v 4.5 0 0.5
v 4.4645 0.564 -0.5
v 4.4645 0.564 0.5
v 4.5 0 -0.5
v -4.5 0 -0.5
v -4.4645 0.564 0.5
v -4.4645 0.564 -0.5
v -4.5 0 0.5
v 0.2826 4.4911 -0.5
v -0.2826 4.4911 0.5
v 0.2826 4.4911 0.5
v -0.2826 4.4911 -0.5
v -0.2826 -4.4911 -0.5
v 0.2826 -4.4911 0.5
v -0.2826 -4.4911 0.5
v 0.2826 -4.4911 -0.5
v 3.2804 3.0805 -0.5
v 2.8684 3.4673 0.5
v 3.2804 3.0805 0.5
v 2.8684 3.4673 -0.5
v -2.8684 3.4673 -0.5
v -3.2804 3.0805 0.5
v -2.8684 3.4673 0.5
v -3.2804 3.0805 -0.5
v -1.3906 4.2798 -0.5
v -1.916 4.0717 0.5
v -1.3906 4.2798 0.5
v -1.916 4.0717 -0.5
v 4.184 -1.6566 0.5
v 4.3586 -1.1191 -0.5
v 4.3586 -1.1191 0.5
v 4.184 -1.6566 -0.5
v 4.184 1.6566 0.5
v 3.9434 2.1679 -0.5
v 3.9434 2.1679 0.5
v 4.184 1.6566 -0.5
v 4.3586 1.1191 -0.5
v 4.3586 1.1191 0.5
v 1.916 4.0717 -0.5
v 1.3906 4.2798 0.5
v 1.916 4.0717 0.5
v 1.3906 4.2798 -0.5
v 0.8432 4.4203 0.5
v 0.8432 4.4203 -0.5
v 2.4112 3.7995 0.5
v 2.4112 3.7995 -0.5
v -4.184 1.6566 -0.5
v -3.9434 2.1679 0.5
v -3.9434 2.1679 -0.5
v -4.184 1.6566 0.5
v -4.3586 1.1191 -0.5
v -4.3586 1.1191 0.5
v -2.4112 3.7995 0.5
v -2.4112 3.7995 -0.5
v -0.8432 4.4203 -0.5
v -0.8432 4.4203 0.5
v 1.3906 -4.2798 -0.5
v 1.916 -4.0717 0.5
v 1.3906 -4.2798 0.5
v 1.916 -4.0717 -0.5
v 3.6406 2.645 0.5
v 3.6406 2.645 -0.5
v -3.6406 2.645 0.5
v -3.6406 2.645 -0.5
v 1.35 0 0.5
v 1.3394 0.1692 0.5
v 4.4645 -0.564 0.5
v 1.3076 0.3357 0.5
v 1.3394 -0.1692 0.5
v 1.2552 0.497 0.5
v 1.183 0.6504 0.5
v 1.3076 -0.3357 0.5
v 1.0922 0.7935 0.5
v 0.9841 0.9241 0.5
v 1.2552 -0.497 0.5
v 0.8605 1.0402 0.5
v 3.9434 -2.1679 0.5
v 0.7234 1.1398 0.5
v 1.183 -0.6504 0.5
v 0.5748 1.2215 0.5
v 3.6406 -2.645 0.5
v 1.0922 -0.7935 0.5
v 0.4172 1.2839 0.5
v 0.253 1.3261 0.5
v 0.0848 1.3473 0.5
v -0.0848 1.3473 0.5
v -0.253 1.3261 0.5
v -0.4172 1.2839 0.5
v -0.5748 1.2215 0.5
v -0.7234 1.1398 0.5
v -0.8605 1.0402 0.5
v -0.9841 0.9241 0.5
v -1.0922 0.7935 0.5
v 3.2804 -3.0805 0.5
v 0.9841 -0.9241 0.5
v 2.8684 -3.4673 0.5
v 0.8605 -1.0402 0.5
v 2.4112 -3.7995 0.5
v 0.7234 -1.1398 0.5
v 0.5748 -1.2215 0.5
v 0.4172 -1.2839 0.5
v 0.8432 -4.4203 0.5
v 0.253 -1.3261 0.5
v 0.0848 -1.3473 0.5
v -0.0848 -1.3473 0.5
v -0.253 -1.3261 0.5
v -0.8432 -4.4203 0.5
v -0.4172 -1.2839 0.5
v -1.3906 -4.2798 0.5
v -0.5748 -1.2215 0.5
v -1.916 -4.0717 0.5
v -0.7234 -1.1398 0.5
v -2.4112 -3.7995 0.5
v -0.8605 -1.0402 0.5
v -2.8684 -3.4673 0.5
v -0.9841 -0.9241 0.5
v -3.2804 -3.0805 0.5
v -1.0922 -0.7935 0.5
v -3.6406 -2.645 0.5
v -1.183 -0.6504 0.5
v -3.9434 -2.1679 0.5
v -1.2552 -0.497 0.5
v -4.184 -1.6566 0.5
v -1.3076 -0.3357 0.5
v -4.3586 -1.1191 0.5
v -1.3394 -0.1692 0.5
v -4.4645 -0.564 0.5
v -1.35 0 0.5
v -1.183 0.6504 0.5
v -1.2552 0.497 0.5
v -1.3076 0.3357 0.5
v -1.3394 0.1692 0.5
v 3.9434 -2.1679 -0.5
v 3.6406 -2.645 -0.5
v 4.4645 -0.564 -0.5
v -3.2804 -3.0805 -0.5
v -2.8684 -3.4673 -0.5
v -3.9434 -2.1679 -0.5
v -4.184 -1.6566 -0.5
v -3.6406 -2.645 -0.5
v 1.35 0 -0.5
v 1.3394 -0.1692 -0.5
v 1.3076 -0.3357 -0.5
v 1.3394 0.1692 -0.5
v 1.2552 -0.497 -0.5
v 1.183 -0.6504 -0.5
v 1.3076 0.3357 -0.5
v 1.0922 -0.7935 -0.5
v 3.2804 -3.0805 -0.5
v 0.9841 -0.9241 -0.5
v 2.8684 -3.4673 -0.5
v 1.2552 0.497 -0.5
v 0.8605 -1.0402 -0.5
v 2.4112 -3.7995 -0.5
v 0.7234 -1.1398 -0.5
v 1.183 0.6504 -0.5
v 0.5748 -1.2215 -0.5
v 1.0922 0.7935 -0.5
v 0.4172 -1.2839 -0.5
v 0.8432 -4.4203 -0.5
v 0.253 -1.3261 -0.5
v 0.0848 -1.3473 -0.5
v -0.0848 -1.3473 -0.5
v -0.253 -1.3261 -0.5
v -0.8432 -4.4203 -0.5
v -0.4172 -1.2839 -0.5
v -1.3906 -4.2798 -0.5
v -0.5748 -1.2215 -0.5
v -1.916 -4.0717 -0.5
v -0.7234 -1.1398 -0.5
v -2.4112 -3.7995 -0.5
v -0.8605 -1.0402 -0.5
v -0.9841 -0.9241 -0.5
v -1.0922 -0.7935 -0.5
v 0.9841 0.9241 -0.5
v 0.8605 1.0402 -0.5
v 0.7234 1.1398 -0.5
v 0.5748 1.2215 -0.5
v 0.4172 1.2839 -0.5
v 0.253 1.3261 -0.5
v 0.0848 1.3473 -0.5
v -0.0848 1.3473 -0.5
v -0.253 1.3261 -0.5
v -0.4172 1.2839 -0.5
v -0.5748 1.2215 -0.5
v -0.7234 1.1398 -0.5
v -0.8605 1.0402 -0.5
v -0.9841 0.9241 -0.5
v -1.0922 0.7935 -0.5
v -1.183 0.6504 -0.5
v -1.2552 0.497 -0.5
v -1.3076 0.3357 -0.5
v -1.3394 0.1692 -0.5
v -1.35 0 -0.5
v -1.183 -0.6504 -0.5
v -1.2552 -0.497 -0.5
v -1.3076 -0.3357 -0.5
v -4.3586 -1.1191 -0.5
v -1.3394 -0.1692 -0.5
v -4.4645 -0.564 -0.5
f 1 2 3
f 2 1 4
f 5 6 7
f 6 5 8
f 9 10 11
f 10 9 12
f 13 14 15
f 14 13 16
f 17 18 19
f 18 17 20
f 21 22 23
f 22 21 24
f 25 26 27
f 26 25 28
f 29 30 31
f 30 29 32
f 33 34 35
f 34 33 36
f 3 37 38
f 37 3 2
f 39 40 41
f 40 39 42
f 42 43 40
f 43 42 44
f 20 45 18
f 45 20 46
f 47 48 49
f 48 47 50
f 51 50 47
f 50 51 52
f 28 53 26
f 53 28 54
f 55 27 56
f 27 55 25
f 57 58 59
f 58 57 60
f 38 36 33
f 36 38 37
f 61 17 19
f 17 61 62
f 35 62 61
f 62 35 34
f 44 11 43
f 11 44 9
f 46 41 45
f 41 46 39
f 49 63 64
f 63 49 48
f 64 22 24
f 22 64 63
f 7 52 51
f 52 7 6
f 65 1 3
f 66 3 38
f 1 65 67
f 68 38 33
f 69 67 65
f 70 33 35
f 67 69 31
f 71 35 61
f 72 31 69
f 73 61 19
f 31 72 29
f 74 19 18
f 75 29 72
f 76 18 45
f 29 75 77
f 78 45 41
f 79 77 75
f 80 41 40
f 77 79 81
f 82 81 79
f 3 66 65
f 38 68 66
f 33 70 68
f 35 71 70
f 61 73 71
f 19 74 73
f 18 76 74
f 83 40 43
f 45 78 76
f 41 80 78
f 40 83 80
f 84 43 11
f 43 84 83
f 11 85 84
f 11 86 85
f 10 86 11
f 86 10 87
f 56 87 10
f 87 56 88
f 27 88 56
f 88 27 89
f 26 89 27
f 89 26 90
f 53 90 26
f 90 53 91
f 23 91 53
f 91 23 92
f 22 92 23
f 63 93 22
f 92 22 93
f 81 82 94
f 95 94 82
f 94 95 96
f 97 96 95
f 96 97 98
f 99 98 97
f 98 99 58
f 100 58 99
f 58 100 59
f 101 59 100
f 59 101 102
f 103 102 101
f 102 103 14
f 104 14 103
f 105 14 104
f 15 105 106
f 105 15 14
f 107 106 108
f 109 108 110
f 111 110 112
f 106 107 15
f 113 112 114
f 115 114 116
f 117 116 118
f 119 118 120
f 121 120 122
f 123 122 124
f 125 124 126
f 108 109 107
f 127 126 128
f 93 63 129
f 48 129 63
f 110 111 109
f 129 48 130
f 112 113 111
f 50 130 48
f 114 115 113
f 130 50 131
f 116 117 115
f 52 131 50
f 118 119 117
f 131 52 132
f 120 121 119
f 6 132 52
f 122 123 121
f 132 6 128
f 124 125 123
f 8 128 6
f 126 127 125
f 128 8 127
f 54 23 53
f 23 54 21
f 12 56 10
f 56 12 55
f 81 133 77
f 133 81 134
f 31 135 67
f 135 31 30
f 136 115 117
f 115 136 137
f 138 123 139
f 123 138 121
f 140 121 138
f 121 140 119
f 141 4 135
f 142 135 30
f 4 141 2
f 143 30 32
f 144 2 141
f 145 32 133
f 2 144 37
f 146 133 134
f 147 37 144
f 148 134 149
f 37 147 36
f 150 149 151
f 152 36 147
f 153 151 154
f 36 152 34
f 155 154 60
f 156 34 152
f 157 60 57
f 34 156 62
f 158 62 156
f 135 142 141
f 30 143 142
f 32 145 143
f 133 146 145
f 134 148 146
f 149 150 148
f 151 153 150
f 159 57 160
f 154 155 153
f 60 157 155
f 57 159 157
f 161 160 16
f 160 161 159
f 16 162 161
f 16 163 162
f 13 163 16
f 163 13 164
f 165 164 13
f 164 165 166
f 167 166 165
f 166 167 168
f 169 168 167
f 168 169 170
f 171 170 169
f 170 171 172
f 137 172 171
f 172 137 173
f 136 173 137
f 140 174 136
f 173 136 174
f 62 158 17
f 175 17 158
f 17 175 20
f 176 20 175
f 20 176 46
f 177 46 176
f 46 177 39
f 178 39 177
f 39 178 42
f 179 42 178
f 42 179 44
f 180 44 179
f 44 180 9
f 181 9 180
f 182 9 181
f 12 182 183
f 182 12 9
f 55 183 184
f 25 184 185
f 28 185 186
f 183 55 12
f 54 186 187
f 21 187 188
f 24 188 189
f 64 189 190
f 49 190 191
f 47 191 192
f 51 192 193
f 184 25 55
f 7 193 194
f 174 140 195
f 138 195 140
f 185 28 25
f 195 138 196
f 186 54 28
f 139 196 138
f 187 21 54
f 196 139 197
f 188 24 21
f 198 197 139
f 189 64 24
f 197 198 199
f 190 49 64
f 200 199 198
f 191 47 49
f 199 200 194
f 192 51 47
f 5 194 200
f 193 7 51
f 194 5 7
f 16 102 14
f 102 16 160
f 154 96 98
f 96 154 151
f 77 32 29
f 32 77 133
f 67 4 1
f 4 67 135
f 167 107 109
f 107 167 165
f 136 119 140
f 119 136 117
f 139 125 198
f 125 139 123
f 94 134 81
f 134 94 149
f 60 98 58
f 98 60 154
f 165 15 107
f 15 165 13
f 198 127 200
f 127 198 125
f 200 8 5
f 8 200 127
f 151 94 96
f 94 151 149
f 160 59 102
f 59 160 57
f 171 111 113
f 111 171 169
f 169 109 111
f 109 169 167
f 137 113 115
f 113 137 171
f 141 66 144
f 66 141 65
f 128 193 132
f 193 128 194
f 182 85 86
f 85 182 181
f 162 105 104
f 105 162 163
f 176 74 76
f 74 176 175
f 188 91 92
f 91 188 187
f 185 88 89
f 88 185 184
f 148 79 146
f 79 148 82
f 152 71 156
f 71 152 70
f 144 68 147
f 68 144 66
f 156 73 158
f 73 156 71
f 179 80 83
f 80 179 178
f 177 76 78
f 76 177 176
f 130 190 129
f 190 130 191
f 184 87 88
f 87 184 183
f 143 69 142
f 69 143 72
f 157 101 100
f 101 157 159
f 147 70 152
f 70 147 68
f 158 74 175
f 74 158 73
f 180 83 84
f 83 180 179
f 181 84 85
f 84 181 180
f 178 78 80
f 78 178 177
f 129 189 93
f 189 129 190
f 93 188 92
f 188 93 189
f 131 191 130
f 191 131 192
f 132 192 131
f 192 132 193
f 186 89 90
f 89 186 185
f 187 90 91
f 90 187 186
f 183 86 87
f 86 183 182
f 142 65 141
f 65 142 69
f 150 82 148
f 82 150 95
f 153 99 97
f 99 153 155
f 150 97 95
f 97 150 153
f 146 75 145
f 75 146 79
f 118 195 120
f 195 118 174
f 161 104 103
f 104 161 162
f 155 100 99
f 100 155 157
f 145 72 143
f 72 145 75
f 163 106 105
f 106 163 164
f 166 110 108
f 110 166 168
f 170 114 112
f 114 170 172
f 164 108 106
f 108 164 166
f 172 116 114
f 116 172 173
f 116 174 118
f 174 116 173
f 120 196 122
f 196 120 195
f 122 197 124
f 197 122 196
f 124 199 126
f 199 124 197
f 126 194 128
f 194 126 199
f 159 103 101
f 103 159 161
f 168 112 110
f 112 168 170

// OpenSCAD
$fn = 50;


difference() {
	union() {
		translate(v = [0, 0, -0.5000000000]) {
			cylinder(h = 1, r = 4.5000000000);
		}
	}
	union() {
		translate(v = [0, 0, -100.0000000000]) {
			cylinder(h = 200, r = 1.3500000000);
		}
	}
}
